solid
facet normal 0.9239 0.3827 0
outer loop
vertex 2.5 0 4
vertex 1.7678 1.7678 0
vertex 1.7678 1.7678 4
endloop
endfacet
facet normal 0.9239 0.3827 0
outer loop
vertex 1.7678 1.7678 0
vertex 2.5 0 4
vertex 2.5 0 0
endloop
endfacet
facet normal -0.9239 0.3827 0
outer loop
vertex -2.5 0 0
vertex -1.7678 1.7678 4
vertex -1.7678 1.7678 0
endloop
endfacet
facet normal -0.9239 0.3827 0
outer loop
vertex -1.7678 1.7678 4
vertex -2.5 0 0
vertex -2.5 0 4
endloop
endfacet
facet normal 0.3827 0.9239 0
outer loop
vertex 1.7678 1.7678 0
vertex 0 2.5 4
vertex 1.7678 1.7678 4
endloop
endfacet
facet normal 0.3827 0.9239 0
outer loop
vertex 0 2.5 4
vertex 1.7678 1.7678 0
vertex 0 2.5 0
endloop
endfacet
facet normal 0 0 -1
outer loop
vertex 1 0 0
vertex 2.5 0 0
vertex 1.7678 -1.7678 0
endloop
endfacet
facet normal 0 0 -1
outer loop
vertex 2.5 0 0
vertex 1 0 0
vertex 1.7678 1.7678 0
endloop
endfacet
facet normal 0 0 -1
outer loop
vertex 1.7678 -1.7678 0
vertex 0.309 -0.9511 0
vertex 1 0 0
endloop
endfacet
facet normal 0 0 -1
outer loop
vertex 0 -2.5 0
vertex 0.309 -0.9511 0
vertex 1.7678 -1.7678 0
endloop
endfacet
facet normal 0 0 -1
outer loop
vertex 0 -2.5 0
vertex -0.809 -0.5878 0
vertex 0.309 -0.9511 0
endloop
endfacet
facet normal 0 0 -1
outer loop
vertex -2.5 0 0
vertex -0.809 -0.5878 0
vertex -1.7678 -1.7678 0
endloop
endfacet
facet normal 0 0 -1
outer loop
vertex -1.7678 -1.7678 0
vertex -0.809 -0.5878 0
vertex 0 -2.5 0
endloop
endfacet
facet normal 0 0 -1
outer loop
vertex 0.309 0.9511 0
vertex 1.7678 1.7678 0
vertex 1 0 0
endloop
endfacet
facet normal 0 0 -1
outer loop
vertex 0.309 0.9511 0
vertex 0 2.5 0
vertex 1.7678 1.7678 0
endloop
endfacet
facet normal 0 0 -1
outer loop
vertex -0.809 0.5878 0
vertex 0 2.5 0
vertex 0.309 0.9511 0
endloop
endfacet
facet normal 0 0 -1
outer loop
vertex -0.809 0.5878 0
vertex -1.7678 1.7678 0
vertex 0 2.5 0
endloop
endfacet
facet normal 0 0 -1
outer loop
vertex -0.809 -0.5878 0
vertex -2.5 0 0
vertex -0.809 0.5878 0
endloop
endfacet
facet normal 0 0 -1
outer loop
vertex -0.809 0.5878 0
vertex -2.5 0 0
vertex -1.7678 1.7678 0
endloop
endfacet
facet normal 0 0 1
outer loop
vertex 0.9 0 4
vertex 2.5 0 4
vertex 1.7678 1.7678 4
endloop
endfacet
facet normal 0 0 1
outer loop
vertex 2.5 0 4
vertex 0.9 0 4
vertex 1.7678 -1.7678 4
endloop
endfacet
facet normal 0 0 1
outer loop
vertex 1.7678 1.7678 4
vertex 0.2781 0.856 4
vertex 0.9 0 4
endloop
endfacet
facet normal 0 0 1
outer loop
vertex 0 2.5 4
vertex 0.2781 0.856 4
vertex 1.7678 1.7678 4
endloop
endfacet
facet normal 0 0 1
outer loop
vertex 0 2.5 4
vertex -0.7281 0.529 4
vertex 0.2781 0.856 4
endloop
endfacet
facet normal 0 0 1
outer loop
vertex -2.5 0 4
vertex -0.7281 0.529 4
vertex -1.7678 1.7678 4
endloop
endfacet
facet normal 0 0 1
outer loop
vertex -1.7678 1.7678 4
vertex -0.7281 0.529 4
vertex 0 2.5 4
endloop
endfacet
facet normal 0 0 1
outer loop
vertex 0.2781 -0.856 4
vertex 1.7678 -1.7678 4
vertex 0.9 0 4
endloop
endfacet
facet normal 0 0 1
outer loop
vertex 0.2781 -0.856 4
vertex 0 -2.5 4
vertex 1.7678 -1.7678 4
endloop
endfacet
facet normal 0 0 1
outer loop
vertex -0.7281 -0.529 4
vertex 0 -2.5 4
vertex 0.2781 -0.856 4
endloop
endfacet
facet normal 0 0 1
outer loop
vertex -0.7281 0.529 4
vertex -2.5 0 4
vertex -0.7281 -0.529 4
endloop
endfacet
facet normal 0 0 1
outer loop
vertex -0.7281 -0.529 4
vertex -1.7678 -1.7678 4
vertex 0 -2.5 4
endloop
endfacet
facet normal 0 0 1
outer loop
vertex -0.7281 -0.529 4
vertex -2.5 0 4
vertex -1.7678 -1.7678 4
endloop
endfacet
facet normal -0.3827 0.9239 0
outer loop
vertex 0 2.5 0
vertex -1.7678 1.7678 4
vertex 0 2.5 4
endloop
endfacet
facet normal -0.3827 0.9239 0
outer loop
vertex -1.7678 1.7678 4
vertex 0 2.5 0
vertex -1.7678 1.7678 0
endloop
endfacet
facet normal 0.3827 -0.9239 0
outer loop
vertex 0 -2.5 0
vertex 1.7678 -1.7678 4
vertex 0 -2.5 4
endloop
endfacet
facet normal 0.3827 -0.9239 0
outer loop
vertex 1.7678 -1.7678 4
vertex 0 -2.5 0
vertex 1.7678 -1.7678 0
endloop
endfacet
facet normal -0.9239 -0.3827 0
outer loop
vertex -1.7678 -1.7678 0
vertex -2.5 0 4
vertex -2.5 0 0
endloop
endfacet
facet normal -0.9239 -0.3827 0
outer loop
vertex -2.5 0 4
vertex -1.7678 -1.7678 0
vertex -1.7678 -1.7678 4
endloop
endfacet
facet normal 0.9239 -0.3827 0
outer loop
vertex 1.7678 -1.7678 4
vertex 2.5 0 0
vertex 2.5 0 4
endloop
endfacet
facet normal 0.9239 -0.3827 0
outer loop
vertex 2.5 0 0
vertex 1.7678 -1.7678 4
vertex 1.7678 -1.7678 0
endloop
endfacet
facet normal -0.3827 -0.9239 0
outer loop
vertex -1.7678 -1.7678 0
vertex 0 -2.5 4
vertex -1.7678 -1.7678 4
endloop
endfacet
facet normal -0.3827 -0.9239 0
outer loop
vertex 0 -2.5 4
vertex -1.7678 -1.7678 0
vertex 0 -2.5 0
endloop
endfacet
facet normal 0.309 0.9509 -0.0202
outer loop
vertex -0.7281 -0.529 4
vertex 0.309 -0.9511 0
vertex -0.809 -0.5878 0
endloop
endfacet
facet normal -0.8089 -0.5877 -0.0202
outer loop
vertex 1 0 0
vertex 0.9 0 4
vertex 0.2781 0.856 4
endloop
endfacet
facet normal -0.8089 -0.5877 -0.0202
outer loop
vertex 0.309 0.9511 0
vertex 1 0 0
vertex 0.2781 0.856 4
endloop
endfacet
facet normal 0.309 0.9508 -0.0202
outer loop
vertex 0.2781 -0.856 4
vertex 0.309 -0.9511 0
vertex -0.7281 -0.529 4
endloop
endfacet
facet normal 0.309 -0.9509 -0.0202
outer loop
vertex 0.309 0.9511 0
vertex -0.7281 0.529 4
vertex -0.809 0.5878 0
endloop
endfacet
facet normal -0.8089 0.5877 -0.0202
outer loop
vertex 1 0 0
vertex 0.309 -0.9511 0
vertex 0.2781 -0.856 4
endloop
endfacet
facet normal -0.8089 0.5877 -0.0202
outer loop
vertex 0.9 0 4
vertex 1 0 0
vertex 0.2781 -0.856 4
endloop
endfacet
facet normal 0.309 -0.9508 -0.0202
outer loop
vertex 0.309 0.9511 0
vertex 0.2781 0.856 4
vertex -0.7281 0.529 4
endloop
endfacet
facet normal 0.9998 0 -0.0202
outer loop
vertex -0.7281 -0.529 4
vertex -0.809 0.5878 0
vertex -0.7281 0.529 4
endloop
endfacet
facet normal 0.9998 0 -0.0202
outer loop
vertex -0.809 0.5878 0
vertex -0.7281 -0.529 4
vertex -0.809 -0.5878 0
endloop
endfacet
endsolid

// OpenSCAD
difference(){
    cylinder(h=4, r=2.5);
    cylinder(h=4, r1=1, r2=0.9);
}
